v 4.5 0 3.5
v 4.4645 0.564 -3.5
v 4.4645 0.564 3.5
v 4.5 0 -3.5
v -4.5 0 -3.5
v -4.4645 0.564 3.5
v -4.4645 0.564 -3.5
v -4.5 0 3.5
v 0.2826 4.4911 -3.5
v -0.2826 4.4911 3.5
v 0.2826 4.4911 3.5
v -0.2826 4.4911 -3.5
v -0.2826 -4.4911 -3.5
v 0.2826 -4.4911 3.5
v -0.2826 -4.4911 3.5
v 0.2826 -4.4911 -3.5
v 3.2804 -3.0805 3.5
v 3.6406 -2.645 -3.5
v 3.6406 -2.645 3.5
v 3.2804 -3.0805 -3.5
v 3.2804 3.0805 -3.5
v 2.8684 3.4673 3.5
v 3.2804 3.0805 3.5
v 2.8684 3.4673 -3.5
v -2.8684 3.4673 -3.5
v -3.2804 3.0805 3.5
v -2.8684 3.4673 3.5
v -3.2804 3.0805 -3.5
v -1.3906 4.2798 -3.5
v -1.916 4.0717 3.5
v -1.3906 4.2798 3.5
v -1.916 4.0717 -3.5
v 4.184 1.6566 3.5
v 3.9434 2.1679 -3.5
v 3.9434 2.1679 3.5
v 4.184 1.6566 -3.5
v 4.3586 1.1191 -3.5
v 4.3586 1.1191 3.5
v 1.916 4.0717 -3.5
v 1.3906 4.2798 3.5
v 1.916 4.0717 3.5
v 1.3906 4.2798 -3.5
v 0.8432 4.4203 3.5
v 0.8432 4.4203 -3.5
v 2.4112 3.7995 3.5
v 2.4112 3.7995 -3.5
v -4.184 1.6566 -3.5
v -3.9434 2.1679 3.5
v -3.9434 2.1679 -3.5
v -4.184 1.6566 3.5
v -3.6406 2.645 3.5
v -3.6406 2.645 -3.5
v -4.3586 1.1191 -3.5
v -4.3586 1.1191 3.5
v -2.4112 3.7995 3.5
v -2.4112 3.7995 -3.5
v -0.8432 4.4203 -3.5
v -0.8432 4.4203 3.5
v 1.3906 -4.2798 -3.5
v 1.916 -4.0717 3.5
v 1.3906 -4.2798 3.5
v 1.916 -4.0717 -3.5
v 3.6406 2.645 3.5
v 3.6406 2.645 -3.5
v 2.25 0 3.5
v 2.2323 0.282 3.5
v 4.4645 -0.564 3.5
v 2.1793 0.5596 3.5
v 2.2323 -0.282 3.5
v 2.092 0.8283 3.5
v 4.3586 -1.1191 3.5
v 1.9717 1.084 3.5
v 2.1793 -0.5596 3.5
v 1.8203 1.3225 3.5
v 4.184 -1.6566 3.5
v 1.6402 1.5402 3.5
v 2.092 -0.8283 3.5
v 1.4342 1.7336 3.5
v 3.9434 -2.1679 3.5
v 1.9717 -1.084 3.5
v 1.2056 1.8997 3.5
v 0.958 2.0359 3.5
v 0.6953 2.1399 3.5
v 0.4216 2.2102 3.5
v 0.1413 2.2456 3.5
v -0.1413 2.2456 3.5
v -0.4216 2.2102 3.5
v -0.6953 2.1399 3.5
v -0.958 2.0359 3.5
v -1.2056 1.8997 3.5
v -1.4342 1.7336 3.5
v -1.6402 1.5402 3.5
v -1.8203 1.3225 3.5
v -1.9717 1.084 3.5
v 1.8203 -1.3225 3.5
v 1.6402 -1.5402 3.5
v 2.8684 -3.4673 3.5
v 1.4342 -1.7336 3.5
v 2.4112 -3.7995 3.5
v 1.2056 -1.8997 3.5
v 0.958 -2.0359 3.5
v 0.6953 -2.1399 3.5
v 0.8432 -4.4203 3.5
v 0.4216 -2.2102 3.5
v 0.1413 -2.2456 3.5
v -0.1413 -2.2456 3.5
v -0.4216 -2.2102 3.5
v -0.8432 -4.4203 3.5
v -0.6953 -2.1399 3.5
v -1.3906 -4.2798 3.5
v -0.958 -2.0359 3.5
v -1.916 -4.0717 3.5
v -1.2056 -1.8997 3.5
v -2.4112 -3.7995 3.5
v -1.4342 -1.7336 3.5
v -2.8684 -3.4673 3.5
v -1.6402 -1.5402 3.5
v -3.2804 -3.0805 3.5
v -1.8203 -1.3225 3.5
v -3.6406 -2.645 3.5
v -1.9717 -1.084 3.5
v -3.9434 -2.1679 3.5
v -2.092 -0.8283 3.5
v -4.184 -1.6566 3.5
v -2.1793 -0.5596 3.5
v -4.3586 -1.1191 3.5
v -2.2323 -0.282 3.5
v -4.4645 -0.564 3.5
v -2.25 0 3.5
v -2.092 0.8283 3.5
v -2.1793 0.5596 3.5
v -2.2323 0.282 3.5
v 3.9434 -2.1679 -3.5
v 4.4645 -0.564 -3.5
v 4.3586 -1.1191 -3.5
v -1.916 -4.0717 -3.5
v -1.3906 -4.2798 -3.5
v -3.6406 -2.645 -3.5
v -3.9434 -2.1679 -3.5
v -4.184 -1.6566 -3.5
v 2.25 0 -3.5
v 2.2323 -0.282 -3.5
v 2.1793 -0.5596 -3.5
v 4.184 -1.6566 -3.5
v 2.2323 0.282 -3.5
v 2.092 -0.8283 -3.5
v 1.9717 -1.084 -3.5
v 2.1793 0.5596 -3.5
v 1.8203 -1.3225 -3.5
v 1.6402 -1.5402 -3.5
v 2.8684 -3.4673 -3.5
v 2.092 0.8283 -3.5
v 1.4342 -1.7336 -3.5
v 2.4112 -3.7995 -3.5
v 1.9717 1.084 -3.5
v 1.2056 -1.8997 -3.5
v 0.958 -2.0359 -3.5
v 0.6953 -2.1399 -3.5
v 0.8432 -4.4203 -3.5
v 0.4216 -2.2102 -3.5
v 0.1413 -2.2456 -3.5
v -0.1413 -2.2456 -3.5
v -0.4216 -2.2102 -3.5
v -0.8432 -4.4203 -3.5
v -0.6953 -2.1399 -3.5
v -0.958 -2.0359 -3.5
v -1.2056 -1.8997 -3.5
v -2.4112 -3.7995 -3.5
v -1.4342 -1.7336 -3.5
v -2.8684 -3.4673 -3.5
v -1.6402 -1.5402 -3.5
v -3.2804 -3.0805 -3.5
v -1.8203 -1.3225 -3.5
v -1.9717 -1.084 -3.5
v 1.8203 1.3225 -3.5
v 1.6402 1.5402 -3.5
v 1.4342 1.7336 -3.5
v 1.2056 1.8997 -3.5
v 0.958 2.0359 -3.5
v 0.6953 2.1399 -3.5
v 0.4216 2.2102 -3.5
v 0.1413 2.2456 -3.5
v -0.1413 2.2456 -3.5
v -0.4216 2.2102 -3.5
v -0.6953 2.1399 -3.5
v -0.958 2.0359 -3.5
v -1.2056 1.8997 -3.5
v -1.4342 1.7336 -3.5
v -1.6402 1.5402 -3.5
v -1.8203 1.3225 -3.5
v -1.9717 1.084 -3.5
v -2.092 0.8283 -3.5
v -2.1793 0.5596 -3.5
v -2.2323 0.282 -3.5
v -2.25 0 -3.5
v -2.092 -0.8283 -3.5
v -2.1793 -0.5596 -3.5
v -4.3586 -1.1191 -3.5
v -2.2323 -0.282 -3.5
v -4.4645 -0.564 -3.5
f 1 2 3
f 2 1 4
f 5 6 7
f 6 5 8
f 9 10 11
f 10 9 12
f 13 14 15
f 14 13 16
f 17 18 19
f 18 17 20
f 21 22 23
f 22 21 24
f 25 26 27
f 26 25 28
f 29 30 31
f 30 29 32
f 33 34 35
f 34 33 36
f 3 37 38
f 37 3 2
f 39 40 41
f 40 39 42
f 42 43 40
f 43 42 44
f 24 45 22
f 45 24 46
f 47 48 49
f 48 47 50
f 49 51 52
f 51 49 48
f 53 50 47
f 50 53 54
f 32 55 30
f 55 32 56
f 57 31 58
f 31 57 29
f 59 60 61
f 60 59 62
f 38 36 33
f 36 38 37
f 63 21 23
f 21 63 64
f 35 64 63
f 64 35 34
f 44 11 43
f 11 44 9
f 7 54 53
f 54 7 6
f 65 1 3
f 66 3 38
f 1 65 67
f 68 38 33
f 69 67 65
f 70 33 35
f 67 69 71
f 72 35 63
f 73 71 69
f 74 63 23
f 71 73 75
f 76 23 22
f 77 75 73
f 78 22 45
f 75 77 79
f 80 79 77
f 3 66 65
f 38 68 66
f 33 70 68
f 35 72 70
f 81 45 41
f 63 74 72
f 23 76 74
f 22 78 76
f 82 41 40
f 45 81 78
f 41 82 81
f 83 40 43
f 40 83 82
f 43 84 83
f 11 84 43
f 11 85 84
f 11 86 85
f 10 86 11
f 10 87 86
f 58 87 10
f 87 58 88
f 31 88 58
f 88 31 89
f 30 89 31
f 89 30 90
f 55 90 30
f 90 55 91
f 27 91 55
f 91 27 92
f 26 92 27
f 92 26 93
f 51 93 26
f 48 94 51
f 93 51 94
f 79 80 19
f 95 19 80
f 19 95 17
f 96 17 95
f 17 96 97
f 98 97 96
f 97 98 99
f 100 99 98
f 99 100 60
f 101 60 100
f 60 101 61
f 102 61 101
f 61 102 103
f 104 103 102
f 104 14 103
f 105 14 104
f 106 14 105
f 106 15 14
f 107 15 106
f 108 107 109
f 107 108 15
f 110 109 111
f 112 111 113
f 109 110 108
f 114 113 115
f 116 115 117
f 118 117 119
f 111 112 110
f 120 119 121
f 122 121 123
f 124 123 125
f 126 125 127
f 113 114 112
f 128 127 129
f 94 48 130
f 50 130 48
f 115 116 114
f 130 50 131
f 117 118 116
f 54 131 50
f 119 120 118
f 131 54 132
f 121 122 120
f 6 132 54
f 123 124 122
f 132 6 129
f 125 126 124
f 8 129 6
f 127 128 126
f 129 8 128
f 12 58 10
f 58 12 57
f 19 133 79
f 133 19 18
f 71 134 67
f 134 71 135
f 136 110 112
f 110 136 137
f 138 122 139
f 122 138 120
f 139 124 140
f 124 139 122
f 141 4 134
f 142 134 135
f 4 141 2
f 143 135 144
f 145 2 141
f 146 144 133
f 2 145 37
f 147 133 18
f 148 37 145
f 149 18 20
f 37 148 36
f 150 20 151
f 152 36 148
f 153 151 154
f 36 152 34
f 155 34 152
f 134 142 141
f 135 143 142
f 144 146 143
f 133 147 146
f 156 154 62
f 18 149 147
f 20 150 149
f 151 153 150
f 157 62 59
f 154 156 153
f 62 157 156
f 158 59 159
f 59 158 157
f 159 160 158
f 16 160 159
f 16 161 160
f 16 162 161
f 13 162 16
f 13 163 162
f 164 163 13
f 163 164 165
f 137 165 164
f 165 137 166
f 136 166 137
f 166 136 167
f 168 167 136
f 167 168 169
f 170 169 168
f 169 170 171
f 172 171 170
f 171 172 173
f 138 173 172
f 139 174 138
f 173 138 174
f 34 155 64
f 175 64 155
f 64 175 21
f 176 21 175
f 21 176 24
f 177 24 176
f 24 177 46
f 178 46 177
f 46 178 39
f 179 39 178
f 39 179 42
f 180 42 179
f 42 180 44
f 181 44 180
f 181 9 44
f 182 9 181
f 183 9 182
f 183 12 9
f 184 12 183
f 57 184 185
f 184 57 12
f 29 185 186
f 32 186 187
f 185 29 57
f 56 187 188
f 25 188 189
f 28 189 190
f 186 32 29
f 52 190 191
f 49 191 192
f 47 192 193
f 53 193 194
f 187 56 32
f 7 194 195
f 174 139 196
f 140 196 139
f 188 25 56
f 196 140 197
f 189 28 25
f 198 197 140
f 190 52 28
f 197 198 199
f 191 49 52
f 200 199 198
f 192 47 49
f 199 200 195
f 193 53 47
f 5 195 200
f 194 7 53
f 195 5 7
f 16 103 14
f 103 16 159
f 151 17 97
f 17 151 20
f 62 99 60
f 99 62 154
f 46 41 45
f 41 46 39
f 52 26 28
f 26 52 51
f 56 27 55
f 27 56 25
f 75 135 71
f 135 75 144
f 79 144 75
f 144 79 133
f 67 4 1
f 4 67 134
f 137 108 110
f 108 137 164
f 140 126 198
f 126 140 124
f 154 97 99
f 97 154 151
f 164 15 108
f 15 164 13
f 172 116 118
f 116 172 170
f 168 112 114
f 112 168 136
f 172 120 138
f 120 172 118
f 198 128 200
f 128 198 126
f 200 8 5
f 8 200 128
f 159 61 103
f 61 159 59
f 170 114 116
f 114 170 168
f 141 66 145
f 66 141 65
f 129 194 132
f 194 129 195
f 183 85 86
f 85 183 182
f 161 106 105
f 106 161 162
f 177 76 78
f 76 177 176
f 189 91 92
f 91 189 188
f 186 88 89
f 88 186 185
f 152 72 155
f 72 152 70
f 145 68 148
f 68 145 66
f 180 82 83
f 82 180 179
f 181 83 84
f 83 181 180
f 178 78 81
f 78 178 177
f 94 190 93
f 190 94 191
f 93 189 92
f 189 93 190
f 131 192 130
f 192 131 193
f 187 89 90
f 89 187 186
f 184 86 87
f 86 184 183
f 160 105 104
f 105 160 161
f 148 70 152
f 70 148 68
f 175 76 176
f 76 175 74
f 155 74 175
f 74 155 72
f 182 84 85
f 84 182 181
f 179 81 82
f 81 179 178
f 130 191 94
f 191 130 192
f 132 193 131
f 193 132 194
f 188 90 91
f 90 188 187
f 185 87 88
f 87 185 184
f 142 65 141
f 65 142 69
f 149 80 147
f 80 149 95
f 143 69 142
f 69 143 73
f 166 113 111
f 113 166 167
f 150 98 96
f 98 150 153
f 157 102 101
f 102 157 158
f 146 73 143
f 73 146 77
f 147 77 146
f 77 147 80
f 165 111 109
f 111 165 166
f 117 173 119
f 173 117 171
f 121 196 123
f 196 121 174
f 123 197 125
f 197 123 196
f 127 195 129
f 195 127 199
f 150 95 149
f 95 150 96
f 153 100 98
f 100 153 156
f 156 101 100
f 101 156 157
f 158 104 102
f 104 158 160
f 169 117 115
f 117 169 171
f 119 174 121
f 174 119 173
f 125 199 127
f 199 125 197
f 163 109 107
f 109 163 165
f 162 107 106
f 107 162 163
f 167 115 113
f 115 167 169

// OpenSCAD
$fn = 50;


difference() {
	union() {
		translate(v = [0, 0, -3.5000000000]) {
			cylinder(h = 7, r = 4.5000000000);
		}
	}
	union() {
		translate(v = [0, 0, -100.0000000000]) {
			cylinder(h = 200, r = 2.2500000000);
		}
	}
}
